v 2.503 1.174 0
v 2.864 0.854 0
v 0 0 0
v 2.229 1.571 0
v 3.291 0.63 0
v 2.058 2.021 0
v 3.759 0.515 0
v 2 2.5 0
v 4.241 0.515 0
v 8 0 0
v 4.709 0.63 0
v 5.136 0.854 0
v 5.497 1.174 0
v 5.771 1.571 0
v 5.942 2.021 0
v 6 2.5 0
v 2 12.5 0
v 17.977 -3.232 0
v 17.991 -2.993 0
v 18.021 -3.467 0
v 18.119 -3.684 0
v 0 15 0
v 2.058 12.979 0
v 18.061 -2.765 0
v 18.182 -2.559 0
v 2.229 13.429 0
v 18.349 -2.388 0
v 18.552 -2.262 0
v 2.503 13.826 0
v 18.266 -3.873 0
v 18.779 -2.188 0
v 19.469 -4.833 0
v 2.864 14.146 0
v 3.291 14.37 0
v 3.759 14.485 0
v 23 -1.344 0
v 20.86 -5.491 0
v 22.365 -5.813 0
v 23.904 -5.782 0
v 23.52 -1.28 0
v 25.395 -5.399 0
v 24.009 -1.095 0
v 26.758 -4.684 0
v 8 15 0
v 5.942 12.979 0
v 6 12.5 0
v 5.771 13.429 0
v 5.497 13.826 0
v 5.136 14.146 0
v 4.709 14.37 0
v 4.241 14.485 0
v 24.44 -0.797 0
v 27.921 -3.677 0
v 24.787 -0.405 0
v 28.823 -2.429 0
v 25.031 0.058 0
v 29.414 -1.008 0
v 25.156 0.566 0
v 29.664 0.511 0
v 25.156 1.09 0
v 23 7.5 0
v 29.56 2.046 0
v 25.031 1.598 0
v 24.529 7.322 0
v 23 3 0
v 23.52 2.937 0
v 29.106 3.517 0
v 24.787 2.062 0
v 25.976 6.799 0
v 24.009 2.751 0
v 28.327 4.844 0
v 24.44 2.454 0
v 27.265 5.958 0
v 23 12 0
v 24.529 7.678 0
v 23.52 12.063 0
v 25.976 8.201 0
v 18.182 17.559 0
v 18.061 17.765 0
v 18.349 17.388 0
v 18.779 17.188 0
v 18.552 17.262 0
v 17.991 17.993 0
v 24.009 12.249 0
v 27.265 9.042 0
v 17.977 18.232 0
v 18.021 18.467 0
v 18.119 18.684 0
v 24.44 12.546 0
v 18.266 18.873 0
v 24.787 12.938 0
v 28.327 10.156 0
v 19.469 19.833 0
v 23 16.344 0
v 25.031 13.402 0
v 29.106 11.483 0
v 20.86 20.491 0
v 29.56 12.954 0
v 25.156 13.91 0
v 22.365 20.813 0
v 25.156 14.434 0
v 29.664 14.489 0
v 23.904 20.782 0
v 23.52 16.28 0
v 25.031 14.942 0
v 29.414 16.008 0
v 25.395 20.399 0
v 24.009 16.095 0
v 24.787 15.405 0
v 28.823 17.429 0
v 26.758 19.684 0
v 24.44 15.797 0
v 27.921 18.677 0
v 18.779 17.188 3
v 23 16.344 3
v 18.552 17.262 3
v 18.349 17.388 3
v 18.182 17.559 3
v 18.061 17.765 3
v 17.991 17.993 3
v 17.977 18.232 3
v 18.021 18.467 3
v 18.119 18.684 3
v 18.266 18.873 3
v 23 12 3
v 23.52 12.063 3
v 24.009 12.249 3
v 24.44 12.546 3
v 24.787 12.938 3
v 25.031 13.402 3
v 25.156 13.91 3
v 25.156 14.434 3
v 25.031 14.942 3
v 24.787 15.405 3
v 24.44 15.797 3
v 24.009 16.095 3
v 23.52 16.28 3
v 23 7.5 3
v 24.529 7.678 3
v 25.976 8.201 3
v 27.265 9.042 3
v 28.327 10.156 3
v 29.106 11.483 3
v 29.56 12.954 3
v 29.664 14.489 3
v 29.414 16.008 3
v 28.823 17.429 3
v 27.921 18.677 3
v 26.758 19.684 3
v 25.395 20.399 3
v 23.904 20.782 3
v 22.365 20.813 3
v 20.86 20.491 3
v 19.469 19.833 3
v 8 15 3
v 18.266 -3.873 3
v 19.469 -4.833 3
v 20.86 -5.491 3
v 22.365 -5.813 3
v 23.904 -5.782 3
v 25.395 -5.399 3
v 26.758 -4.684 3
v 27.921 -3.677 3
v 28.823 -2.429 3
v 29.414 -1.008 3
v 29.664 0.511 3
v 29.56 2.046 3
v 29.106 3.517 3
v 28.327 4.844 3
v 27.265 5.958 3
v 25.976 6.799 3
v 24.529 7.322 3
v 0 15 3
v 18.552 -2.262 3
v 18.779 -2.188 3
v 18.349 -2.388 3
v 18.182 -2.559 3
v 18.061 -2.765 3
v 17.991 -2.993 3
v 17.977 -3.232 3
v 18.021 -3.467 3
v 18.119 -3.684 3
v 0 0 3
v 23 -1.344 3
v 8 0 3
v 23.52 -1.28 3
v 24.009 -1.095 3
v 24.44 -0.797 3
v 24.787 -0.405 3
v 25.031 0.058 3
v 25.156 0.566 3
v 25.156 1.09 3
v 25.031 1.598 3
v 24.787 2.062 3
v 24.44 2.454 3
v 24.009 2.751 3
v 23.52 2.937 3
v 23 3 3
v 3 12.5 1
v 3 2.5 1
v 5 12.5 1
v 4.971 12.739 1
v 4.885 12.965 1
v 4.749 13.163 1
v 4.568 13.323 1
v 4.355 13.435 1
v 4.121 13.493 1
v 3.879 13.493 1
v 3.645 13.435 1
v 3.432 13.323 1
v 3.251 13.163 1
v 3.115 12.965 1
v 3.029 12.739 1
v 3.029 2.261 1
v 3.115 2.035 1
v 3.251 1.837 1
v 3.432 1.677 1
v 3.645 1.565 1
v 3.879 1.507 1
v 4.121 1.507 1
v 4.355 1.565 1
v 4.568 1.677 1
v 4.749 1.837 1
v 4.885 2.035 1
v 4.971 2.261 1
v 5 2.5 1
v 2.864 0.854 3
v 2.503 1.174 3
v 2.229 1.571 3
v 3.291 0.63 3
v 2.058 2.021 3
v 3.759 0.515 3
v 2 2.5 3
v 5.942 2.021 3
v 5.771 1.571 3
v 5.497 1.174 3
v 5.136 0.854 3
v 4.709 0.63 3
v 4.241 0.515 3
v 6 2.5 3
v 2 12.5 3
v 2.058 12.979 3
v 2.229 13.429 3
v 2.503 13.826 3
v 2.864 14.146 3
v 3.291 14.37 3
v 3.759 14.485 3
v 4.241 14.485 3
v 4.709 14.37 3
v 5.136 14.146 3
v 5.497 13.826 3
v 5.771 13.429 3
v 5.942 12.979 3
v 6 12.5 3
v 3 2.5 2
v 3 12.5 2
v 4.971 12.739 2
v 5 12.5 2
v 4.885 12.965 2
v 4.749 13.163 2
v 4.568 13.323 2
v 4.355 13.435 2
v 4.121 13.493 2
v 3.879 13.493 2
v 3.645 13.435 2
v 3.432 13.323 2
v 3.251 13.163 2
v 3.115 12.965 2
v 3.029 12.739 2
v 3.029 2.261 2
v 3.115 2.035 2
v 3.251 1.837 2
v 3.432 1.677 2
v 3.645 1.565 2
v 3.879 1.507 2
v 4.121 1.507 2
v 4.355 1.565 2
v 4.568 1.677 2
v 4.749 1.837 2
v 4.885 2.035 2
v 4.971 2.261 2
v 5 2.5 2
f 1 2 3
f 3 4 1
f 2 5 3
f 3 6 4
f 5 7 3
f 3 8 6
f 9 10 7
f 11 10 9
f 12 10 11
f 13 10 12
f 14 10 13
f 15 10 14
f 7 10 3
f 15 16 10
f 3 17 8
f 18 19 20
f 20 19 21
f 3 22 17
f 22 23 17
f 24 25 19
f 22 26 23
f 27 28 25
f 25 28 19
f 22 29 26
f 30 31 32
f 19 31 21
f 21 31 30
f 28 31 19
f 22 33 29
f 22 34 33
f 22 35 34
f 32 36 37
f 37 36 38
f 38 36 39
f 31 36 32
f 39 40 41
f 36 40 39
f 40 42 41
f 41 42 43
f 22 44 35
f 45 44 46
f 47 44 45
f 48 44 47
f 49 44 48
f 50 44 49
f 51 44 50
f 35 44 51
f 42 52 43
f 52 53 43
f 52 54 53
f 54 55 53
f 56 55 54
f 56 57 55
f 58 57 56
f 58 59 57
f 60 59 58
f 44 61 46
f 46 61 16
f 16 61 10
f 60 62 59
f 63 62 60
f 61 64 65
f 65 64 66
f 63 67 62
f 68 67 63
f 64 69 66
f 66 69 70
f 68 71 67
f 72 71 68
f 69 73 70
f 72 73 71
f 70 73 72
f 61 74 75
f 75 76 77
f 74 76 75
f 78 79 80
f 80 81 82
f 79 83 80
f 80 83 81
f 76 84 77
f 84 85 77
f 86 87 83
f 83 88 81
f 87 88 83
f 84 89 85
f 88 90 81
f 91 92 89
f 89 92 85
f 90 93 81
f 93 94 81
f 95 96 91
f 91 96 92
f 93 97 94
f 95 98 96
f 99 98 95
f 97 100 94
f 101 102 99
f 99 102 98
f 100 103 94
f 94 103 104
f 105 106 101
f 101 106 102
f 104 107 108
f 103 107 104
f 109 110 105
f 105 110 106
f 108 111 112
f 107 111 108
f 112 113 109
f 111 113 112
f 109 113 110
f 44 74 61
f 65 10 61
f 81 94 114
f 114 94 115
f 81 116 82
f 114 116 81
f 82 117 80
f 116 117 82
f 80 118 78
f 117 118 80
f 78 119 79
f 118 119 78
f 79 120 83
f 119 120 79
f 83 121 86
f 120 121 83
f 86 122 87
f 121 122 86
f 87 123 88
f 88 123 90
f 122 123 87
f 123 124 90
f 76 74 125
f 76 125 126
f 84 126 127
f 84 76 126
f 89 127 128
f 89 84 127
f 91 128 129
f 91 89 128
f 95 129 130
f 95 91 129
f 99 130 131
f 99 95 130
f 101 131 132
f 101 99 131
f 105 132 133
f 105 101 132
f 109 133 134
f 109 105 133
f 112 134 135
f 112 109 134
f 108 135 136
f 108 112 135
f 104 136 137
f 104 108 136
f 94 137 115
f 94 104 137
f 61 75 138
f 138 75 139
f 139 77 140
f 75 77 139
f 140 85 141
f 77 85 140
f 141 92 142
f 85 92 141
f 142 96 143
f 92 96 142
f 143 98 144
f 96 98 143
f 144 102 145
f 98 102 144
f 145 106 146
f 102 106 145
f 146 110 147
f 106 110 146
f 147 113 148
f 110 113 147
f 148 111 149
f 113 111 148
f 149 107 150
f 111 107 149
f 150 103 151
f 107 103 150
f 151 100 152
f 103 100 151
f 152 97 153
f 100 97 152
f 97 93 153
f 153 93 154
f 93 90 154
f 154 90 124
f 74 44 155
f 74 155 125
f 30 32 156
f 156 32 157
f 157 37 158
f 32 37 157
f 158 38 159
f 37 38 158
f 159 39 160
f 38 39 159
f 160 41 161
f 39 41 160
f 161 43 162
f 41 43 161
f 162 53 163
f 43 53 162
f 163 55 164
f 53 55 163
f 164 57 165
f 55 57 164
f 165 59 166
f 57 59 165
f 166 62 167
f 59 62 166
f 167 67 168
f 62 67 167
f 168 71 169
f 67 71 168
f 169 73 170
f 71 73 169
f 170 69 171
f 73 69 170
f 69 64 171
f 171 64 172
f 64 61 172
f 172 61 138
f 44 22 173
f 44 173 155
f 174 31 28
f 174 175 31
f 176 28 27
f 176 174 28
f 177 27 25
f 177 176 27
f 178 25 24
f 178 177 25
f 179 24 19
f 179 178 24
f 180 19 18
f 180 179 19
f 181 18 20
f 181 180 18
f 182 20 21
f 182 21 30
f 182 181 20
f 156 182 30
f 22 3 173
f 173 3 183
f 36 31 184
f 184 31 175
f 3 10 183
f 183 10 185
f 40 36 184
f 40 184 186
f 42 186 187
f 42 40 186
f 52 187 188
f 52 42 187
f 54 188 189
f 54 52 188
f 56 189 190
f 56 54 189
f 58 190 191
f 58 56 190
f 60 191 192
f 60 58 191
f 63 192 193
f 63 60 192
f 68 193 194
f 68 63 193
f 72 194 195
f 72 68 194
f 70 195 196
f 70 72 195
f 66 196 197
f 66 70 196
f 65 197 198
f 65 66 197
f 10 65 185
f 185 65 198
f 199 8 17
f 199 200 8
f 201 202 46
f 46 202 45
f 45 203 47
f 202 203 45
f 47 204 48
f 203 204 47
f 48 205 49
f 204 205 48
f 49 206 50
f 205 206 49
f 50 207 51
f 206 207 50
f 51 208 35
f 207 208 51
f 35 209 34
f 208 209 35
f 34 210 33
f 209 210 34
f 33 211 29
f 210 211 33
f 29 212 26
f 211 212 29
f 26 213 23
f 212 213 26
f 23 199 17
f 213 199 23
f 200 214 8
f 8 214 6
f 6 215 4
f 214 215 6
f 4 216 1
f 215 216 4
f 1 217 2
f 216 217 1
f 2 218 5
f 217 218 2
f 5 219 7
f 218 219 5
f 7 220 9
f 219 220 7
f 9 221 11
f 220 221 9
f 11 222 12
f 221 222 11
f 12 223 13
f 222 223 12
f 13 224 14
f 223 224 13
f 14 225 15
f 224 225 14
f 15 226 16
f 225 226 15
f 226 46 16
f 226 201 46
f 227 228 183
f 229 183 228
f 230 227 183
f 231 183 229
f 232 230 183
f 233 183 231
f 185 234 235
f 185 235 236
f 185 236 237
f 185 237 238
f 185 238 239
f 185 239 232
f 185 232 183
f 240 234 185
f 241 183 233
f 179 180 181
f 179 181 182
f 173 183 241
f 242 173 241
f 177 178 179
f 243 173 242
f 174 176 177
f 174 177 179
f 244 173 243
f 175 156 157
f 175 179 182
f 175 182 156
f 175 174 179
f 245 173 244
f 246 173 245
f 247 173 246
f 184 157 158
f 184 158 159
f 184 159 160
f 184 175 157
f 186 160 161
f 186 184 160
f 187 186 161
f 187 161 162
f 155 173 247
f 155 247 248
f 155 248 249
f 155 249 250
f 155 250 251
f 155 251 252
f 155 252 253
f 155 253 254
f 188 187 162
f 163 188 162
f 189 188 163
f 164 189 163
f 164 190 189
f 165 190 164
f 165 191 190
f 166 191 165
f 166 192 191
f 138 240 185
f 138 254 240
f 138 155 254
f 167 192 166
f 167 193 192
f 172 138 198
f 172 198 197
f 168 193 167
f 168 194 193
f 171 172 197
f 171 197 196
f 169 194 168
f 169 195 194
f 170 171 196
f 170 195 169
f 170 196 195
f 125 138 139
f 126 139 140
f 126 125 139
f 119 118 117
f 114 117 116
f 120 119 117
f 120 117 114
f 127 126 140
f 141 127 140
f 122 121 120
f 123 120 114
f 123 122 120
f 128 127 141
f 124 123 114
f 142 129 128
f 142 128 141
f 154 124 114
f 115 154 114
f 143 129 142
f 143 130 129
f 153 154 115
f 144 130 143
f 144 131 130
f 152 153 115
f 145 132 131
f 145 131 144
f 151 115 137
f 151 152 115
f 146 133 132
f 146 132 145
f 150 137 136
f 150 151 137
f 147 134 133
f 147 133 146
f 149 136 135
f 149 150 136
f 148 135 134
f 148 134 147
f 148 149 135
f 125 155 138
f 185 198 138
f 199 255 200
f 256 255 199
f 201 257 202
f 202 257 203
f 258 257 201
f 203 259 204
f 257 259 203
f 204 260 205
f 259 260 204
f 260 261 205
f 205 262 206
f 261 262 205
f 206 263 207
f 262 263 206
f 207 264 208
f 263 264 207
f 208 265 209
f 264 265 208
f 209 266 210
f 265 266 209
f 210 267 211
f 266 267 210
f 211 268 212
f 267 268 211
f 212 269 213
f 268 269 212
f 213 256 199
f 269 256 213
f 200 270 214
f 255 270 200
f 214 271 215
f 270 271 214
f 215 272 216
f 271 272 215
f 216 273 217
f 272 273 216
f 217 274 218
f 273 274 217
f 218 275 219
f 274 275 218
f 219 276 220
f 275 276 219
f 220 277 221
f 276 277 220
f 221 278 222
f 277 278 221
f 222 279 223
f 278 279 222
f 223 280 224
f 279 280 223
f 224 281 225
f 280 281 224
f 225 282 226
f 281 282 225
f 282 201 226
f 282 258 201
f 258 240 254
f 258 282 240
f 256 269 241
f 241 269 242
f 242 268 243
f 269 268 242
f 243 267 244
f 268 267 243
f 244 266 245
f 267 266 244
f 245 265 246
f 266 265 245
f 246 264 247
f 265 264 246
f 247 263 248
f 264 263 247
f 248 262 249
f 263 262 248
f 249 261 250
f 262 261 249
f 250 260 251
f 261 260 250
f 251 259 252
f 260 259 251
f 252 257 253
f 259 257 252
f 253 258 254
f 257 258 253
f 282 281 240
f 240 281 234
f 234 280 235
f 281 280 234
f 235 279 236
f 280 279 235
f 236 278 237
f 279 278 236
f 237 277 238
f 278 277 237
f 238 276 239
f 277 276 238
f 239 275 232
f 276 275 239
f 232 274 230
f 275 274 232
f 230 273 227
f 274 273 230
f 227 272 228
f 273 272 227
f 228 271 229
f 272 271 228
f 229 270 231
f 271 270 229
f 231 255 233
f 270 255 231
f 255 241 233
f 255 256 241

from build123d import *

# Parameters (mm, degrees)
PAD_DEPTH    = 3
POCKET_DEPTH = 5
CHAMFER_SIZE = 1
FILLET_R     = 1


with BuildPart() as part:
    # Sketch → Pad (new body)
    with BuildSketch(Plane.XY):
        with BuildLine():
            Line((0, 15), (0, 0))
            Line((0, 0), (8, 0))
            Line((8, 0), (23, 3))
            ThreePointArc((23, -1.343534), (25.171767, 0.828233), (23, 3))
            Line((23, -1.343534), (17.21767, -2.5))
            ThreePointArc((17.21767, -2.5), (28.775711, -2.511474), (23, 7.5))
            ThreePointArc((23, 7.5), (28.775711, 17.511474), (17.21767, 17.5))
            Line((17.21767, 17.5), (23, 16.343534))
            ThreePointArc((23, 12), (25.171767, 14.171767), (23, 16.343534))
            Line((8, 15), (23, 12))
            Line((0, 15), (8, 15))
        make_face()
    extrude(amount=PAD_DEPTH)

    # Sketch001 (on Face13 of Pad) → Pocket (cut)
    with BuildSketch(Plane.XY.offset(3)):
        with BuildLine():
            ThreePointArc((5, 12.5), (4, 13.5), (3, 12.5))
            Line((3, 12.5), (3, 2.5))
            ThreePointArc((3, 2.5), (4, 1.5), (5, 2.5))
            Line((5, 12.5), (5, 2.5))
        make_face()
    extrude(amount=-POCKET_DEPTH, mode=Mode.SUBTRACT)

    # Chamfer
    chamfer_edges = [part.edges().sort_by_distance(p)[0] for p in [
        (3, 7.5, 0),
        (5, 7.5, 3),
    ]]
    chamfer(chamfer_edges, length=CHAMFER_SIZE)

    # Fillet
    fillet_edges = [part.edges().sort_by_distance(p)[0] for p in [
        (17.21767, -2.5, 1.5),
        (17.21767, 17.5, 1.5),
    ]]
    fillet(fillet_edges, radius=FILLET_R)


solid = part.part
